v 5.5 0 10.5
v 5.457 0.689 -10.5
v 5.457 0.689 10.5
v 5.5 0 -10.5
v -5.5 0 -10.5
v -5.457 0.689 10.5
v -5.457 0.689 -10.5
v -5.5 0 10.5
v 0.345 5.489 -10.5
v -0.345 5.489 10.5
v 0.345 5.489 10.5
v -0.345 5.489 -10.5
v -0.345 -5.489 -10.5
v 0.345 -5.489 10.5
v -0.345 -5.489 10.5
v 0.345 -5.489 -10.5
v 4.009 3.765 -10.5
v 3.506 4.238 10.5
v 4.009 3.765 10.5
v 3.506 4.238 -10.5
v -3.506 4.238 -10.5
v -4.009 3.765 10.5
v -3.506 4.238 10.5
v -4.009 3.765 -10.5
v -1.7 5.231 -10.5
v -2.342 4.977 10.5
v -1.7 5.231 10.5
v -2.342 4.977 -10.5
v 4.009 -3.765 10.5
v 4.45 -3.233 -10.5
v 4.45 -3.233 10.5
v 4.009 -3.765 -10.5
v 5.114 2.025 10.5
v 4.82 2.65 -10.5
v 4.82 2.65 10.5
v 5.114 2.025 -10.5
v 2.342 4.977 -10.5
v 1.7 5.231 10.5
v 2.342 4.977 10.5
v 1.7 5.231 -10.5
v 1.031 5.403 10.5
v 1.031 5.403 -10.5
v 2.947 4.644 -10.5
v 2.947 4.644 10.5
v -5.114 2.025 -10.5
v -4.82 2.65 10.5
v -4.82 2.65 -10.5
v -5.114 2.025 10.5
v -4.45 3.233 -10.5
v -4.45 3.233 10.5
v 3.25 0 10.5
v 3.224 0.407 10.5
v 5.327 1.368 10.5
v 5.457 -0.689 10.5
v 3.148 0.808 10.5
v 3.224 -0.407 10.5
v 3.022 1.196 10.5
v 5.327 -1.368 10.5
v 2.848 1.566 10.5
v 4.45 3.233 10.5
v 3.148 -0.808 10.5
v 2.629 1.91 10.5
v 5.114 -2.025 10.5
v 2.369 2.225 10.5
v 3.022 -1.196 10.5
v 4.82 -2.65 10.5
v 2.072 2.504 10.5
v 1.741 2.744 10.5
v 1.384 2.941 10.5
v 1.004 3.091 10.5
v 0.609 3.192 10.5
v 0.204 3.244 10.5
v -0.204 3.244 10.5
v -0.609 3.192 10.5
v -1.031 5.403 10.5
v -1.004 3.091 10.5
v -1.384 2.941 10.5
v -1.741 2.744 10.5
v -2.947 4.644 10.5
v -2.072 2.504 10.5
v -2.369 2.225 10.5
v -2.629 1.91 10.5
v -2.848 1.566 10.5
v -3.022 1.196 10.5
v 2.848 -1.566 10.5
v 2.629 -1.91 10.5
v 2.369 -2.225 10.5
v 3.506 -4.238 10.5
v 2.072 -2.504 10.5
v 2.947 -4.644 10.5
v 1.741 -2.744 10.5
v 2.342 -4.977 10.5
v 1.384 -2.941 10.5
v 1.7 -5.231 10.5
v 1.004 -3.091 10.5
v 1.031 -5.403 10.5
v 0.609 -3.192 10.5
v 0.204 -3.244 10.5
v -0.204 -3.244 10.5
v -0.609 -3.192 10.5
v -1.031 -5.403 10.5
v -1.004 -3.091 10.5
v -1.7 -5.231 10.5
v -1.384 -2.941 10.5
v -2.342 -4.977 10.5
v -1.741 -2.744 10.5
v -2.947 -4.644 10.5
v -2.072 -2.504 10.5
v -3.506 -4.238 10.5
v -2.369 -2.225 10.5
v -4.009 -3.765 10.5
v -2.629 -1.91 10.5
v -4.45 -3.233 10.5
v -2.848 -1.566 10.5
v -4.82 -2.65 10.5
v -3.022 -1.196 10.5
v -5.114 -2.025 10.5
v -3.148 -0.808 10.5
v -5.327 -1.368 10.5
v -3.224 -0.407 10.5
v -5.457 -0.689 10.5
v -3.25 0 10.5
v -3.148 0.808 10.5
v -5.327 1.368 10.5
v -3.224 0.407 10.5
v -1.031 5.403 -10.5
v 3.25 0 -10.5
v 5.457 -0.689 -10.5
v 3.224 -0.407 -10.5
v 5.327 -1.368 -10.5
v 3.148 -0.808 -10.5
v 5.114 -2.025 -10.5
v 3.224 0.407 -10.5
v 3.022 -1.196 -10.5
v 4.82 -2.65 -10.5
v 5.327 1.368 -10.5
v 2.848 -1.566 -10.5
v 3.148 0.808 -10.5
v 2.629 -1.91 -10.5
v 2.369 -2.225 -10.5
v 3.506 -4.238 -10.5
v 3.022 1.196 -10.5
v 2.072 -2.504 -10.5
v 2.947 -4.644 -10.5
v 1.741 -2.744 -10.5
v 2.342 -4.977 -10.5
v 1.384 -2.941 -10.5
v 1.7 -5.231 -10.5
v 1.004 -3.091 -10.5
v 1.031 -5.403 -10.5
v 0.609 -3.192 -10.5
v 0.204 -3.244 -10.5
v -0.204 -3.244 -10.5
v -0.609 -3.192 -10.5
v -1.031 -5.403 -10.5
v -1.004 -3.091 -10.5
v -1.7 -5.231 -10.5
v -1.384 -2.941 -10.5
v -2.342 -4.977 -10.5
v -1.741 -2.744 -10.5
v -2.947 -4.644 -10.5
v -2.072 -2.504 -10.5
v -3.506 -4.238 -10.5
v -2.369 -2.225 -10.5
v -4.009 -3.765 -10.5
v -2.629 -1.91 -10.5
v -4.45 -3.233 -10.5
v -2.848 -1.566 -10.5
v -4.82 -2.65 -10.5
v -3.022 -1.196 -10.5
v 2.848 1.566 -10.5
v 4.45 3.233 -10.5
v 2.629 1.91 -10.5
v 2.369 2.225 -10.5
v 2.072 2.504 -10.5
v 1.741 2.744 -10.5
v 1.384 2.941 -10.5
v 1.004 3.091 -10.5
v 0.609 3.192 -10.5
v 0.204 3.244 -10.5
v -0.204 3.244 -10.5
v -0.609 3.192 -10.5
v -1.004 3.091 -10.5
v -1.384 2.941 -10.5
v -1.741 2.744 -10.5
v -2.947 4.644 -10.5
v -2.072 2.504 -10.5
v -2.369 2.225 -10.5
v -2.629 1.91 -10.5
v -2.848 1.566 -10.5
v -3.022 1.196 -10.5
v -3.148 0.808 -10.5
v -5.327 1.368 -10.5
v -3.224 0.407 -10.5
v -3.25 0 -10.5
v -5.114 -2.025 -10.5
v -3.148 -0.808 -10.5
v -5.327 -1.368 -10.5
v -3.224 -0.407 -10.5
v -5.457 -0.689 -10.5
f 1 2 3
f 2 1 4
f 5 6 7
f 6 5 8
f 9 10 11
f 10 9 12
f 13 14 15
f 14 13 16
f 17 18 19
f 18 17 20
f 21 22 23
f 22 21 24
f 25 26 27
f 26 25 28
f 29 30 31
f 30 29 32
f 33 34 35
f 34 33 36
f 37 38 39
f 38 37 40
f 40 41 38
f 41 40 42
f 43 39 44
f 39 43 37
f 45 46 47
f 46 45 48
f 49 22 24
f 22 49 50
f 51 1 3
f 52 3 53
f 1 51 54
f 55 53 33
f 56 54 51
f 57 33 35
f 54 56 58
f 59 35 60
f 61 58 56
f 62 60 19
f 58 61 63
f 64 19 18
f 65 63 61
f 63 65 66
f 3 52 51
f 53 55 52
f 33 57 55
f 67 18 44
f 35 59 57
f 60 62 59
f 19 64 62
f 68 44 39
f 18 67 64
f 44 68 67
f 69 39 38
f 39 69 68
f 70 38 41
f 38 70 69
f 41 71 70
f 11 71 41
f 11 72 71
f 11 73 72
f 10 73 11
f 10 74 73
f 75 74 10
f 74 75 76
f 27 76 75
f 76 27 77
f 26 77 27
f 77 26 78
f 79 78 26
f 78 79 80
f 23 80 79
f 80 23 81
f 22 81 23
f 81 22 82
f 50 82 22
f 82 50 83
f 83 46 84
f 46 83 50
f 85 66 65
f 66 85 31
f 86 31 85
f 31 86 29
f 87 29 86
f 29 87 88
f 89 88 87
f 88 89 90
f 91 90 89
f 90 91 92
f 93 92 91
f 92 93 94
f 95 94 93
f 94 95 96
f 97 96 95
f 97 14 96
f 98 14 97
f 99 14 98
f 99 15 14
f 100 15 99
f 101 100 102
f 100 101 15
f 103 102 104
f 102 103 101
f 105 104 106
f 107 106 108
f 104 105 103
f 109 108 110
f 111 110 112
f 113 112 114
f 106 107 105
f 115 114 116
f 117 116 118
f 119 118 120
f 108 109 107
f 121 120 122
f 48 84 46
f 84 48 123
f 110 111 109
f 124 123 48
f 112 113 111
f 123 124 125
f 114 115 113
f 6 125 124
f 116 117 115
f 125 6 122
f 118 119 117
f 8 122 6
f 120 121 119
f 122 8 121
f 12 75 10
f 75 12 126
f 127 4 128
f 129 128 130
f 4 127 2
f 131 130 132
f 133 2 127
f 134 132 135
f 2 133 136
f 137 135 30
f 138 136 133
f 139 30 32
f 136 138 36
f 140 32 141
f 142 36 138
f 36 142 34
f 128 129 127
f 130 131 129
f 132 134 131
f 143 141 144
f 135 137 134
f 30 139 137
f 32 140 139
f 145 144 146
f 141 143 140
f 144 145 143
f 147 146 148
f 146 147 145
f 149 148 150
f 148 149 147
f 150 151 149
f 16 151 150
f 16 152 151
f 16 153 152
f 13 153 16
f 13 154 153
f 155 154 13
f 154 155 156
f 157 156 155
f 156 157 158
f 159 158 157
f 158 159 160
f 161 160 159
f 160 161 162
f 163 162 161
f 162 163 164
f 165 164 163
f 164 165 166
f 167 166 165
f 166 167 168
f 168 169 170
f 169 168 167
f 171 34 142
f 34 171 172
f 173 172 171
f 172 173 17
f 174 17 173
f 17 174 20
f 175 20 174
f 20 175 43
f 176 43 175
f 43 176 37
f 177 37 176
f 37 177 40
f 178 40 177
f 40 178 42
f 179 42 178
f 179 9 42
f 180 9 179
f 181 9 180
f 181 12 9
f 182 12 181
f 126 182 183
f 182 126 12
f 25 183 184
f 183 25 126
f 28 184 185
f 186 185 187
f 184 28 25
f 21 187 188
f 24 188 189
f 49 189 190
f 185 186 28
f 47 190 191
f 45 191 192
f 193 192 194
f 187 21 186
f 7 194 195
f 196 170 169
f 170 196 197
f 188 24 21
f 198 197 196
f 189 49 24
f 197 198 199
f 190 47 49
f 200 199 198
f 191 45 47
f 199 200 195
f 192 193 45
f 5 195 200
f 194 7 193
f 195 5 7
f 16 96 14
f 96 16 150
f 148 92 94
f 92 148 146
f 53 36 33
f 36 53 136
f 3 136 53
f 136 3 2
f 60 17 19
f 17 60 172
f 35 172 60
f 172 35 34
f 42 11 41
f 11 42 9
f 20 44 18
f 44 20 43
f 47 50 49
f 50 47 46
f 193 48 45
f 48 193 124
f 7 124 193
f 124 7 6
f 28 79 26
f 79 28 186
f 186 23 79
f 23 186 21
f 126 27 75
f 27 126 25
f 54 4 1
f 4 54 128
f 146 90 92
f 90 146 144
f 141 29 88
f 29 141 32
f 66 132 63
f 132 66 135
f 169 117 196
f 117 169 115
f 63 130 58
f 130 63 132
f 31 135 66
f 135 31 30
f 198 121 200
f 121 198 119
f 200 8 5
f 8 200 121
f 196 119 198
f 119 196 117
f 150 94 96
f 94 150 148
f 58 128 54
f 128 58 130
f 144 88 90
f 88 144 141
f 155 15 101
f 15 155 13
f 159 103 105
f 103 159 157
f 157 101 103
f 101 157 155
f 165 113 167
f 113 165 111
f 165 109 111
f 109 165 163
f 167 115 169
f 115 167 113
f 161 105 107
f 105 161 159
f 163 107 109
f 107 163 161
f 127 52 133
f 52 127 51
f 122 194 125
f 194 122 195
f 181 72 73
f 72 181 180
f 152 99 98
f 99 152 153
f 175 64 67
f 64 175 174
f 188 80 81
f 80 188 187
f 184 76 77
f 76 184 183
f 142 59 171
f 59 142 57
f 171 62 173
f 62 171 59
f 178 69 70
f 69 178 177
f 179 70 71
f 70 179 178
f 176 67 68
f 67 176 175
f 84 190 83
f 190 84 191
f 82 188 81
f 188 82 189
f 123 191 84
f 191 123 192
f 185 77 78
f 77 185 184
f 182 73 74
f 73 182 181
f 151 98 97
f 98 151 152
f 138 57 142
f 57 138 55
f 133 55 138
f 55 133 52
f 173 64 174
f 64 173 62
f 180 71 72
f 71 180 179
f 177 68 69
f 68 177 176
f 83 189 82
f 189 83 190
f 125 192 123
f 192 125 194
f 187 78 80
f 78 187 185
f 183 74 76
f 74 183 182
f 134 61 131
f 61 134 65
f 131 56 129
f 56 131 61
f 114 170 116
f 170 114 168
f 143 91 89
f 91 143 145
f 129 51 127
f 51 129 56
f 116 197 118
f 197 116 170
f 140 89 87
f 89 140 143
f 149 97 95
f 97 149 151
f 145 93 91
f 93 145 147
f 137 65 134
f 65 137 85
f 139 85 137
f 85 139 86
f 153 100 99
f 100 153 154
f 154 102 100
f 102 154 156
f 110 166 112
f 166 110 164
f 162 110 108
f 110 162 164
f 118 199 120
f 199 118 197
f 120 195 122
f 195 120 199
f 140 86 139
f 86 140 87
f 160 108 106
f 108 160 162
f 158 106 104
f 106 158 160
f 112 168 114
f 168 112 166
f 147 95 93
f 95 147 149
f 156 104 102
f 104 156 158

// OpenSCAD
$fn = 50;


difference() {
	union() {
		translate(v = [0, 0, -10.5000000000]) {
			cylinder(h = 21, r = 5.5000000000);
		}
	}
	union() {
		translate(v = [0, 0, -100.0000000000]) {
			cylinder(h = 200, r = 3.2500000000);
		}
	}
}
